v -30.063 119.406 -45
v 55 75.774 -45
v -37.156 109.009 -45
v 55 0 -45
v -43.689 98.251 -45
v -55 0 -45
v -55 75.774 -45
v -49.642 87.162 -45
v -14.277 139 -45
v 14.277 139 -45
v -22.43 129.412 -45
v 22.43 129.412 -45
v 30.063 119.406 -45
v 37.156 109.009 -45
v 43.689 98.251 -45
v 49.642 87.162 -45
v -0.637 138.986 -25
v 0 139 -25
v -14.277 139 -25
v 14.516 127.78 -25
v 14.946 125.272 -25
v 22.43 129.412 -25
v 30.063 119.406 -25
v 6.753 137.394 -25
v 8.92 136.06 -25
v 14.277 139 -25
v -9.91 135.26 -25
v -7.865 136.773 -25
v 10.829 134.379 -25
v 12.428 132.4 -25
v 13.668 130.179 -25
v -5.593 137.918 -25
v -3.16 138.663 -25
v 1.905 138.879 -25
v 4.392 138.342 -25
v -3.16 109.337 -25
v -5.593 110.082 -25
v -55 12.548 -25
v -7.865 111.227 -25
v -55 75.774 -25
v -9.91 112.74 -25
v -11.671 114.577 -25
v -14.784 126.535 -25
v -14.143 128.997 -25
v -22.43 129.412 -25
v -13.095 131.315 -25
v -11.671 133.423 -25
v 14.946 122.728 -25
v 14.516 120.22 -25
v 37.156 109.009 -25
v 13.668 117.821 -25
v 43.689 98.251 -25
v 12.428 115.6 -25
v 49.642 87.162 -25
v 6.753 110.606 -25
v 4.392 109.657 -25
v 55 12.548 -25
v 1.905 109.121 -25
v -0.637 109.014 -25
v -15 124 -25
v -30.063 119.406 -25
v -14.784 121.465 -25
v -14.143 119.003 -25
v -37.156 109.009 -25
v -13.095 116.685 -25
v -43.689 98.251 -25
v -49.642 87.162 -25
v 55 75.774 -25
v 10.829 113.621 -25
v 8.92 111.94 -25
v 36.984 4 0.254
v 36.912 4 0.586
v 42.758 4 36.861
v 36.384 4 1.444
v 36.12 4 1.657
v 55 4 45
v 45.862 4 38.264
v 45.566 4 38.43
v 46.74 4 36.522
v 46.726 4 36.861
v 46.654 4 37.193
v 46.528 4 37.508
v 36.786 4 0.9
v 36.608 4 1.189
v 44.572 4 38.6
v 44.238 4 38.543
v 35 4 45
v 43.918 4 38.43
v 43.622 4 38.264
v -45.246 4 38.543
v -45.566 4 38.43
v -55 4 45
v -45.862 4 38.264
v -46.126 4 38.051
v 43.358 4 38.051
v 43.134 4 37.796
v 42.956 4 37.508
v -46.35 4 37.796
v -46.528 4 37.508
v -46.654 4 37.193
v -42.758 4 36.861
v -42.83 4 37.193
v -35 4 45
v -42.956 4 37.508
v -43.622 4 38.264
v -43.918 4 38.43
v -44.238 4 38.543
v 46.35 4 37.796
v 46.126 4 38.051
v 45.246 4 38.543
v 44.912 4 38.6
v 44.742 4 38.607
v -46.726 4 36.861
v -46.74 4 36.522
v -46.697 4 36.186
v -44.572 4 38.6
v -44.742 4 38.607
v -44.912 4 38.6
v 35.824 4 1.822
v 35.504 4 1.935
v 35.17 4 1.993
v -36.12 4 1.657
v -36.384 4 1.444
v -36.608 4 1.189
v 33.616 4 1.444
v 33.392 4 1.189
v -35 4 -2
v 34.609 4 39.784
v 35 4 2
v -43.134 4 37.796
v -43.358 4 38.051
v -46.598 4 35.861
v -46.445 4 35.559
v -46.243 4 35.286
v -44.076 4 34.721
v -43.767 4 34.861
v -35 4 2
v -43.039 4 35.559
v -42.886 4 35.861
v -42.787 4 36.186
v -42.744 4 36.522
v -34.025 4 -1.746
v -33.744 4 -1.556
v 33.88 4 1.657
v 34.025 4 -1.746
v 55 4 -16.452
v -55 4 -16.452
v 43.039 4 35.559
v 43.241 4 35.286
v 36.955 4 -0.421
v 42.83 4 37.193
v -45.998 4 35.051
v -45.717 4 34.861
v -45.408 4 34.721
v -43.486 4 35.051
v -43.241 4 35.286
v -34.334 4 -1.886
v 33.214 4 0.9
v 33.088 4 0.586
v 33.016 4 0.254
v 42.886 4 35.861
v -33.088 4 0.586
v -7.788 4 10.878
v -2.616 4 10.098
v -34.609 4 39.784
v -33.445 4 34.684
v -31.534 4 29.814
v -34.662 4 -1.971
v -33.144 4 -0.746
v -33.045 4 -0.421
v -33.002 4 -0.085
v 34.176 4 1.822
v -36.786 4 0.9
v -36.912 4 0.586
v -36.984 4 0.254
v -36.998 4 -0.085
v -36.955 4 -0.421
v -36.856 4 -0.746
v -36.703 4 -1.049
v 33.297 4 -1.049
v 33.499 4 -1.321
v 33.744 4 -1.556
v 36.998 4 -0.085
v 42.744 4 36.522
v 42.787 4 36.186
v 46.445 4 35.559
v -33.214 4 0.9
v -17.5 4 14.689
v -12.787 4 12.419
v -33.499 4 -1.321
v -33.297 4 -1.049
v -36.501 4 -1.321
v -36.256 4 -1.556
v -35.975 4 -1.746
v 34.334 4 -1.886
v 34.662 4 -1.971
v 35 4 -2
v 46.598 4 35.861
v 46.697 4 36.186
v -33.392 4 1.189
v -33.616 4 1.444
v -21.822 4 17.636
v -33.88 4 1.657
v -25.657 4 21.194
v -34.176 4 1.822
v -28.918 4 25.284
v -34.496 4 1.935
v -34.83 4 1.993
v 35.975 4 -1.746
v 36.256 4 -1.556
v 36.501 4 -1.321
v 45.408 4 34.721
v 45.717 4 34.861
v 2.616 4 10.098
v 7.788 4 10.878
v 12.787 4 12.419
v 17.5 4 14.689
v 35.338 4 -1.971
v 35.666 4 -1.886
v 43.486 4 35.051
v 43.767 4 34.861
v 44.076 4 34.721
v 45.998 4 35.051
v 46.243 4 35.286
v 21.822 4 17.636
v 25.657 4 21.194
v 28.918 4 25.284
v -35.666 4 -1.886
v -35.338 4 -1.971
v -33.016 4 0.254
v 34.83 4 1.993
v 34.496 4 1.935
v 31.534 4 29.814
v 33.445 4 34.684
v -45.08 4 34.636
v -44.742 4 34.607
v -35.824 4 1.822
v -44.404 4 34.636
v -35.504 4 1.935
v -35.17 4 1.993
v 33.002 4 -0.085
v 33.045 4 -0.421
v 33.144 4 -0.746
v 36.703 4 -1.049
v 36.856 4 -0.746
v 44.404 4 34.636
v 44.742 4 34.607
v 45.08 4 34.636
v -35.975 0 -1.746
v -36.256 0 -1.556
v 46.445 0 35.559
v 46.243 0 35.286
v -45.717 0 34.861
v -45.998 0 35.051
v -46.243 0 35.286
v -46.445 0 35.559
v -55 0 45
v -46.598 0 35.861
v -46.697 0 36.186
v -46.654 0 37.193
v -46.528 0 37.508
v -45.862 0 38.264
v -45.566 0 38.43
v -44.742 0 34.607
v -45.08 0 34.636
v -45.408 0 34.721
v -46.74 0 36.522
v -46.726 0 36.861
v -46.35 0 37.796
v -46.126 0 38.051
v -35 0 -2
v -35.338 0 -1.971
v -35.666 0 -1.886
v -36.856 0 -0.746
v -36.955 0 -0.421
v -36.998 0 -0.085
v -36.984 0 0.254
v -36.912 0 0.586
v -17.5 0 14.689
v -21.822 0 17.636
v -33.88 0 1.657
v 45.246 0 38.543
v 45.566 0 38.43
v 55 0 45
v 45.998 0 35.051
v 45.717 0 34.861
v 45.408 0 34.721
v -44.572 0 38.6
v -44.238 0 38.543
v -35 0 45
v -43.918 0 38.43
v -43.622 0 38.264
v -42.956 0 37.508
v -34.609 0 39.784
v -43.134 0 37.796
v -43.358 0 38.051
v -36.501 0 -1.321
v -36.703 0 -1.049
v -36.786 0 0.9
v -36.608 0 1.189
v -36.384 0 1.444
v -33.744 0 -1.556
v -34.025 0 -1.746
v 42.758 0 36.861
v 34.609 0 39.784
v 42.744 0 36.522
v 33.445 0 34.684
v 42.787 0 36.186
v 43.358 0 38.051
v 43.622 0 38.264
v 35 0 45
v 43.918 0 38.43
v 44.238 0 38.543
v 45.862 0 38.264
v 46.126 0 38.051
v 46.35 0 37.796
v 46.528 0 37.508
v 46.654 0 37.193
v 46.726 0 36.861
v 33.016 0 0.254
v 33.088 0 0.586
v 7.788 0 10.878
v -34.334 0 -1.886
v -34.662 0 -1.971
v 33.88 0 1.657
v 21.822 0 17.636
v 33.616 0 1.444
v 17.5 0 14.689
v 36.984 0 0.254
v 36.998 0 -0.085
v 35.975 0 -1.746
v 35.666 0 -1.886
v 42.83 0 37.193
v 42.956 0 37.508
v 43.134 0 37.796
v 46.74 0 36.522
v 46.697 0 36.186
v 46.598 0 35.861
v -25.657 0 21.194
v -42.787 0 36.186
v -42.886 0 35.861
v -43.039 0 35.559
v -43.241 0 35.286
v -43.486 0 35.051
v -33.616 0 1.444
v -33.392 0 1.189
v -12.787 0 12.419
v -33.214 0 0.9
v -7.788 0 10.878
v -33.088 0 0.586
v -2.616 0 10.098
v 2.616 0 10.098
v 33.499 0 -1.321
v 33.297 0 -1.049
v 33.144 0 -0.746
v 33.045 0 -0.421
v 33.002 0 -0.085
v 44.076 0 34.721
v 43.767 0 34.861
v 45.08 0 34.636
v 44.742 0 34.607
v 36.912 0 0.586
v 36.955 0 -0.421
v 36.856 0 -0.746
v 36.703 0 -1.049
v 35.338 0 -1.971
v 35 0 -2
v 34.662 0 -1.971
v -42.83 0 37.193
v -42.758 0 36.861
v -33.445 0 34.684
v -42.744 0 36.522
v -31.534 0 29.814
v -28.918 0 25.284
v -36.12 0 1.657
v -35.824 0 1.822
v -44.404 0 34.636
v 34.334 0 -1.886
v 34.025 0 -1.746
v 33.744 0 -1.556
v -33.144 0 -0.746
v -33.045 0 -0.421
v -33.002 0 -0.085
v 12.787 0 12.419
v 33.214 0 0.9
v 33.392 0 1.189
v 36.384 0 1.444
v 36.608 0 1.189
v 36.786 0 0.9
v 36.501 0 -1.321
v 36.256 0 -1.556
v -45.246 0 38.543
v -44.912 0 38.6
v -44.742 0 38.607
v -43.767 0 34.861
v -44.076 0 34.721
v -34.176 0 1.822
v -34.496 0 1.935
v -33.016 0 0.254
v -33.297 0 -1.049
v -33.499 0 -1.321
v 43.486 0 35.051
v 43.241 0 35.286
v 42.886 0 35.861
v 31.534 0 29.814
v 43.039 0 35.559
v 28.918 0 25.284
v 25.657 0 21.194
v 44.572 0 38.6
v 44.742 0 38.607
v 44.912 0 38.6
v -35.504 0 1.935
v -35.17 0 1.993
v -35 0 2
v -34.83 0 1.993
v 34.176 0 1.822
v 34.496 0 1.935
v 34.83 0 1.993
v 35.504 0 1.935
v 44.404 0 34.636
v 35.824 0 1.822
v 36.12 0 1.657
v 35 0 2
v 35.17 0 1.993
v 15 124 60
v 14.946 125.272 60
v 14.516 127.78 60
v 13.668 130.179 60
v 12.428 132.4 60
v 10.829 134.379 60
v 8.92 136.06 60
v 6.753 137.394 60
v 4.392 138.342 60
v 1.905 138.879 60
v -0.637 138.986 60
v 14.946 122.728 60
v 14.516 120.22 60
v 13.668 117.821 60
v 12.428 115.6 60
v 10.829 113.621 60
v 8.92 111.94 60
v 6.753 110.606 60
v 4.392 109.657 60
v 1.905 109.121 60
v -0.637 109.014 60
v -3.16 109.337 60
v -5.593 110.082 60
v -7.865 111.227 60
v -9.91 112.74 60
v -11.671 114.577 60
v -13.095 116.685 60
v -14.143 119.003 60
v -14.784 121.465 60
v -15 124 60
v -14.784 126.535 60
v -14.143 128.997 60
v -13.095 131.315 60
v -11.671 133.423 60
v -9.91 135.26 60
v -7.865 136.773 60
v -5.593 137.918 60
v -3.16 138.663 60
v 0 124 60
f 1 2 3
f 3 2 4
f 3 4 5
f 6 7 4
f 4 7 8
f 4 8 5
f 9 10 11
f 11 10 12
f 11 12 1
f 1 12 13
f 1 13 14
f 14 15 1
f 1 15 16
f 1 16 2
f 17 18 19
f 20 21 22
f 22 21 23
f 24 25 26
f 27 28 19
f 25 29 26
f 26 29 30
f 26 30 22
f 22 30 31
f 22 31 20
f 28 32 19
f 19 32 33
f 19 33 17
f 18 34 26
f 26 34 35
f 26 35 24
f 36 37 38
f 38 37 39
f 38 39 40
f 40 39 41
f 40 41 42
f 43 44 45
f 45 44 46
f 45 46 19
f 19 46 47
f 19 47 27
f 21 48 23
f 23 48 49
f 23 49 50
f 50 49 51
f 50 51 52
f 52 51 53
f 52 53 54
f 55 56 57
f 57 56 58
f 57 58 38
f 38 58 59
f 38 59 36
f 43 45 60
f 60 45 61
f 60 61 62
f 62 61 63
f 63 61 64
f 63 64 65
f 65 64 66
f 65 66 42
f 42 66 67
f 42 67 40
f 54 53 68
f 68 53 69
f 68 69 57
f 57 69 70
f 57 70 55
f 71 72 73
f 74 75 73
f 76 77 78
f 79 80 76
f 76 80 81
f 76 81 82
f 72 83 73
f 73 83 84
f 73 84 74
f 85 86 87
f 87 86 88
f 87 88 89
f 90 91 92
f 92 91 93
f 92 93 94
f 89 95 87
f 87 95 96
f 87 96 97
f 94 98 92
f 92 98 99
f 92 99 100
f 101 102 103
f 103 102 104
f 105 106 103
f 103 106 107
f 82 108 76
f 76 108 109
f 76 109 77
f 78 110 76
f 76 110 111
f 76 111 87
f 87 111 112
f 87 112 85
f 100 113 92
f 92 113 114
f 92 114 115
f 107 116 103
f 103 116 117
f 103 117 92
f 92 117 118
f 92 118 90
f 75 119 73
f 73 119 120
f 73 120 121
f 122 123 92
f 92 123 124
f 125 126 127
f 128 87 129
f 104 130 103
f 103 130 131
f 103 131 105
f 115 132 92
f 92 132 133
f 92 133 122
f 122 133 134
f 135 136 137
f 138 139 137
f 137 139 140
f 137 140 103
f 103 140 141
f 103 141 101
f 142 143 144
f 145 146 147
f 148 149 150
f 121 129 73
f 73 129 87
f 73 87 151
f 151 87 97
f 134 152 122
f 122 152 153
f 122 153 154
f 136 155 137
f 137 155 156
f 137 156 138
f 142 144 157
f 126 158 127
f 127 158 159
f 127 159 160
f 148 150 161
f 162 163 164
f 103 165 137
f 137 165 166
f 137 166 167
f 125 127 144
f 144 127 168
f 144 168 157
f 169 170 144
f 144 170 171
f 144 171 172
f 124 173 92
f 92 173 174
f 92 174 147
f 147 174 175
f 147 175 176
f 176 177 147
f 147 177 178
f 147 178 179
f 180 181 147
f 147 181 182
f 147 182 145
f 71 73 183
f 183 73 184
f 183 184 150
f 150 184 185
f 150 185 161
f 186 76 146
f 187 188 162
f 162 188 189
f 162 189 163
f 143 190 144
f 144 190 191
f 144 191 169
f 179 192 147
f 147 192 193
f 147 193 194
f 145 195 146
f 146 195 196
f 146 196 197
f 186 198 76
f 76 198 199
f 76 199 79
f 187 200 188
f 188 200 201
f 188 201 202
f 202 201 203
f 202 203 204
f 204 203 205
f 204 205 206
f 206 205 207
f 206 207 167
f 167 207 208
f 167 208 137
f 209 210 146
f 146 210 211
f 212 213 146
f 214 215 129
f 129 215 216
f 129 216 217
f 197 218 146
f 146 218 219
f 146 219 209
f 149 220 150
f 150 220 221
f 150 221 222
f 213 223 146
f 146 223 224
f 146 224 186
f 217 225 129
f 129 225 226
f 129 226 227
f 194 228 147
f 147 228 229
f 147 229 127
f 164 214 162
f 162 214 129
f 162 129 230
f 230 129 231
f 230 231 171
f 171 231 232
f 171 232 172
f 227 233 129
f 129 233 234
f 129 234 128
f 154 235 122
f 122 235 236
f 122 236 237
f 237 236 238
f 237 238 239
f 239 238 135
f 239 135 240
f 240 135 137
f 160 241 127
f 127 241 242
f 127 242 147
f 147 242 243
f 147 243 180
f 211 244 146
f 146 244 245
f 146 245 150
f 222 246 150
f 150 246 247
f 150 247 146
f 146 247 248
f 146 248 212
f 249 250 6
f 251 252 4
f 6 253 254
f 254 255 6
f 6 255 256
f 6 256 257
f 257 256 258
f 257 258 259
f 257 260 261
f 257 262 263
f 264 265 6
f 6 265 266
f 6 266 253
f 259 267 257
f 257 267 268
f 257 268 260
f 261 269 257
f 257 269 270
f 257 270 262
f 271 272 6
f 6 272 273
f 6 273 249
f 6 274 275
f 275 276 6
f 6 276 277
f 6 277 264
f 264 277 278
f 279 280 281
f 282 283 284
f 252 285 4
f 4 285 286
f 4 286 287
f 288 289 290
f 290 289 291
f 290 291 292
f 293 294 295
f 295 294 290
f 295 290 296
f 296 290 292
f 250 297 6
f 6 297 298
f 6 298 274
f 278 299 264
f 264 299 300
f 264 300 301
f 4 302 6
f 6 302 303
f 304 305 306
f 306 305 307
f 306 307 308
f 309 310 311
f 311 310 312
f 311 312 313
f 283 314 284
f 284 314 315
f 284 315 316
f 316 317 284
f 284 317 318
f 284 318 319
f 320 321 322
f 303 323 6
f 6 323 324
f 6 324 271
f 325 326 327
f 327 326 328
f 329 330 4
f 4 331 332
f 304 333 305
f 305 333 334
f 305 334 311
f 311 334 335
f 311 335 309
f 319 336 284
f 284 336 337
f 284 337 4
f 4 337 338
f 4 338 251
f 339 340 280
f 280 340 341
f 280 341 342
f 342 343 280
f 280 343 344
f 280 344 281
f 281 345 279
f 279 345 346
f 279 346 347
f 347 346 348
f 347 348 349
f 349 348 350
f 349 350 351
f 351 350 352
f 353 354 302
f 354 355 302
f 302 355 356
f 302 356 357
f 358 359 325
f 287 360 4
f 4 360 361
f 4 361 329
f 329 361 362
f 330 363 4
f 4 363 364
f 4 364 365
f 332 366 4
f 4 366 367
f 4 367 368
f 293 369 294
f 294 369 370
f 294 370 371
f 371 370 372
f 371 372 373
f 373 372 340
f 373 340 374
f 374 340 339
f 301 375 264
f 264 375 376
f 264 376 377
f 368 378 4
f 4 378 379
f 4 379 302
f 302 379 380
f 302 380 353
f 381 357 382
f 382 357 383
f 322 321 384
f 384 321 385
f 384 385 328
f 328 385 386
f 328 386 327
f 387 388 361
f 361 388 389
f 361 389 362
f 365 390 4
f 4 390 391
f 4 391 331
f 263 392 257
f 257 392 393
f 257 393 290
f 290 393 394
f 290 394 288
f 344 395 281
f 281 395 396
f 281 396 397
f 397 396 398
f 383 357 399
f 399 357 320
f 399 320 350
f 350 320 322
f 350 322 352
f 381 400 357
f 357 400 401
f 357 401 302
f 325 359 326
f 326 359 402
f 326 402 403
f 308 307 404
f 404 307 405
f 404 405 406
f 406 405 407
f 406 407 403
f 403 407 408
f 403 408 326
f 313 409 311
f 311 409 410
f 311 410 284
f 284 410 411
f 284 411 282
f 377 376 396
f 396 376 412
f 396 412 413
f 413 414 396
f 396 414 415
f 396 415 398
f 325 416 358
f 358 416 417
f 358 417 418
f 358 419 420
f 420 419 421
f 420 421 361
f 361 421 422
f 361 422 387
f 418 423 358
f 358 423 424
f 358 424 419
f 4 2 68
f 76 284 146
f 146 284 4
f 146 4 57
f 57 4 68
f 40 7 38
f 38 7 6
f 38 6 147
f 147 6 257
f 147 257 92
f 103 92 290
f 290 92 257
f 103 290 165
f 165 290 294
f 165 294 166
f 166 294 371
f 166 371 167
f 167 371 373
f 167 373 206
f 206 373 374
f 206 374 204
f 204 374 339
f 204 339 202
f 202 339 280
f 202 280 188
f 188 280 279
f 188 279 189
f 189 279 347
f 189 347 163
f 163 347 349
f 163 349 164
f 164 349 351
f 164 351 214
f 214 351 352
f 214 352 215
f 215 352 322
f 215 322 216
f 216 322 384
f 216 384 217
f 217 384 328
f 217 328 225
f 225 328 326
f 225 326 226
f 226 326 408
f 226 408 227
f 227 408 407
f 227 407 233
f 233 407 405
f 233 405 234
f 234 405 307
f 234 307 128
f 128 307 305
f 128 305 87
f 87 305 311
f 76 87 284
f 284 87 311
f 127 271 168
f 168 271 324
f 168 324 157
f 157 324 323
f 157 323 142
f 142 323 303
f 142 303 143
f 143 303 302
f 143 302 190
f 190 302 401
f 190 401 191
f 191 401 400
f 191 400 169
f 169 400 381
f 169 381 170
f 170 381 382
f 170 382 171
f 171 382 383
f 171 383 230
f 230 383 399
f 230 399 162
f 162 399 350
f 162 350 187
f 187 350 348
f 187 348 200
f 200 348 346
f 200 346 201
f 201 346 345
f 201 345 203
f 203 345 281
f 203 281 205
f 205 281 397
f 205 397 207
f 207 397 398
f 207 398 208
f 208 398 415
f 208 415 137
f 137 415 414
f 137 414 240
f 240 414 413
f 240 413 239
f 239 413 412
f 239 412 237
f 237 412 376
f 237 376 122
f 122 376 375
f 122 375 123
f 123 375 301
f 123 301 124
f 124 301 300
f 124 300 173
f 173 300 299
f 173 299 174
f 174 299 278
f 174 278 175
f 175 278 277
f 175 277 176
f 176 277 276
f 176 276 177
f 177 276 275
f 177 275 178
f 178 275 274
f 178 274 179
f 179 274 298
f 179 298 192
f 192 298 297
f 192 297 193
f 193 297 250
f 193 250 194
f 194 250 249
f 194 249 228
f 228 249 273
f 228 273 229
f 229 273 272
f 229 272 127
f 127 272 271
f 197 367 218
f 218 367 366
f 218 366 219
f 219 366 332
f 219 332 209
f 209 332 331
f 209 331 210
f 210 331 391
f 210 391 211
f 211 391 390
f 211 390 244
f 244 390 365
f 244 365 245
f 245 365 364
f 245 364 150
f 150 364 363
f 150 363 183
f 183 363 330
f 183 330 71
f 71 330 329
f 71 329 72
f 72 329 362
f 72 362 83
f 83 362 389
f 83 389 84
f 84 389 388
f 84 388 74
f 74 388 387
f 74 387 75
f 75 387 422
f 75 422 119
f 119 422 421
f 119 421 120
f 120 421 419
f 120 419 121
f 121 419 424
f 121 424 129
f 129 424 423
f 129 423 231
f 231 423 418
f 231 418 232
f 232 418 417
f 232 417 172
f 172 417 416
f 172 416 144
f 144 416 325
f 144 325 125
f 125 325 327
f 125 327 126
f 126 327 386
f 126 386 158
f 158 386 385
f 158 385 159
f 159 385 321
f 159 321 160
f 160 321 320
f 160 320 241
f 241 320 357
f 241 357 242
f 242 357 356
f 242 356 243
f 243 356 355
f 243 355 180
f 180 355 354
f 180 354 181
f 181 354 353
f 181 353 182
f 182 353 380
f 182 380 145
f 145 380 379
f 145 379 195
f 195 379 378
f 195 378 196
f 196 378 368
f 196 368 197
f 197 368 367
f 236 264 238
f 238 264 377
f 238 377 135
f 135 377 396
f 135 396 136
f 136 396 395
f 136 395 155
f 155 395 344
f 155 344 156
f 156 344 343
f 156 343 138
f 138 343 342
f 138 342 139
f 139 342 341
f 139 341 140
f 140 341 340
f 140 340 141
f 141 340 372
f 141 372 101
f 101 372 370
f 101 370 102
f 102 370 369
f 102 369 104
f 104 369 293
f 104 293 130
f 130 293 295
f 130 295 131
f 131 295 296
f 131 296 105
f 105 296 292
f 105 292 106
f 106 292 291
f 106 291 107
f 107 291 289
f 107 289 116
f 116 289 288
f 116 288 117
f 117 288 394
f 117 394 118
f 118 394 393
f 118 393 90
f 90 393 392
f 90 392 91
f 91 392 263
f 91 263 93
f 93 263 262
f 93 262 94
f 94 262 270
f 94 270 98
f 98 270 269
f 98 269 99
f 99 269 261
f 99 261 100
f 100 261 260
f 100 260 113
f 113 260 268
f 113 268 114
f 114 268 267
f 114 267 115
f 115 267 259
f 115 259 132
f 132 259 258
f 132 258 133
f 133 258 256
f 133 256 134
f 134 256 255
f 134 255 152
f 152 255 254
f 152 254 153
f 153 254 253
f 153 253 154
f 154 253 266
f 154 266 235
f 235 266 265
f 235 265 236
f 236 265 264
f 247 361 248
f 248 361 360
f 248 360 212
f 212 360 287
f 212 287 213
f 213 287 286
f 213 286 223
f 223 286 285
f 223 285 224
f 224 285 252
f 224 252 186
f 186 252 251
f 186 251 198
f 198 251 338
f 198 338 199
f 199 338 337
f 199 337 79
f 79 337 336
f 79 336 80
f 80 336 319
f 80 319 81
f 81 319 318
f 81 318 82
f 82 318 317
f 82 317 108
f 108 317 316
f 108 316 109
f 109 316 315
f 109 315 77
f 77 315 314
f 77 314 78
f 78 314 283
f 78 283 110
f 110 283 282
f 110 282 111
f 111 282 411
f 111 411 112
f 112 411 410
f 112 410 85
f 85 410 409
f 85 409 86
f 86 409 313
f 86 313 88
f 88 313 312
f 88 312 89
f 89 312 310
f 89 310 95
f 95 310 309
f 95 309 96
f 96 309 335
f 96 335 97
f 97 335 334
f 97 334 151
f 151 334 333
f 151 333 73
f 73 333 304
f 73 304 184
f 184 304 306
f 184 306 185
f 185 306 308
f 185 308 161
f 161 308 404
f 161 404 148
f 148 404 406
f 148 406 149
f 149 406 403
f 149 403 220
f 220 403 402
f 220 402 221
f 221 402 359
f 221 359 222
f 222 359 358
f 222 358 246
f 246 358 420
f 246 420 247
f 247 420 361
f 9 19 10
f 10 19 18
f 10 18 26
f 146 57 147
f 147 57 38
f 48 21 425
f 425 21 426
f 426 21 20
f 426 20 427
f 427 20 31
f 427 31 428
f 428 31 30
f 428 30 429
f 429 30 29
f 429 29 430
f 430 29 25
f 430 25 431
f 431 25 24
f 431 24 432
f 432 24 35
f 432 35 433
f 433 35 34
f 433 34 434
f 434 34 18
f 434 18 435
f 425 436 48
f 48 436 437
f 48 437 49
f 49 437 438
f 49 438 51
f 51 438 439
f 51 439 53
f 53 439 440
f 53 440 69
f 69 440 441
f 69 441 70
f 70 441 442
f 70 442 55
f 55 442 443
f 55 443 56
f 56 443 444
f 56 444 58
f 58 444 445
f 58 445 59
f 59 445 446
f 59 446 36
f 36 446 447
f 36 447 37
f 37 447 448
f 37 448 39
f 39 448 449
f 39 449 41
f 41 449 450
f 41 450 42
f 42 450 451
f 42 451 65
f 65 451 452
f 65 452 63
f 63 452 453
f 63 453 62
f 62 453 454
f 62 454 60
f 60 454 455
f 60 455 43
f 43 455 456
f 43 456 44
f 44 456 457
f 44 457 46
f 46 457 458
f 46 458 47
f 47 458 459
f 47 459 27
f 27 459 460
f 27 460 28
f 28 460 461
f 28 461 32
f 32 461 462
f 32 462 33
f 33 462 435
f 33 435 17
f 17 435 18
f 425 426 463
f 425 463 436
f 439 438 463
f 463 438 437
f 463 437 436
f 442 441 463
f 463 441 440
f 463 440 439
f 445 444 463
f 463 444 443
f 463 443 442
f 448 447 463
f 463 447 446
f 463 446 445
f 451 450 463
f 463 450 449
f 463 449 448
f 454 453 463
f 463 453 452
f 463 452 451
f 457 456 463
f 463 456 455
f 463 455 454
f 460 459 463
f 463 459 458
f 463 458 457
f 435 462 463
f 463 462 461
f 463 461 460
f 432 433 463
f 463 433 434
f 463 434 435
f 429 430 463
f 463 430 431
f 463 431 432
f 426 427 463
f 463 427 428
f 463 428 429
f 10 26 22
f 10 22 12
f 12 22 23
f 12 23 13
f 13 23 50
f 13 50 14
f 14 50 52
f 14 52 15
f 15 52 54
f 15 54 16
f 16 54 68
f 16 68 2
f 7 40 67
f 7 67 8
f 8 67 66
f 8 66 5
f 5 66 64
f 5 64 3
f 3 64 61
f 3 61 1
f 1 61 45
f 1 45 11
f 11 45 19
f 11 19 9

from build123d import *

# Parameters (mm, degrees)
SKETCH1_R           = 2
BOSS_EXTRUDE1_DEPTH = 4
SKETCH2_W           = 110
SKETCH2_H           = 20
BOSS_EXTRUDE2_DEPTH = 135
SKETCH3_W           = 110
SKETCH3_H           = 8.547835338
BOSS_EXTRUDE3_DEPTH = 10
CHAMFER1_SIZE       = 10
SKETCH4_R           = 15
BOSS_EXTRUDE4_DEPTH = 85
CUT_EXTRUDE1_DEPTH  = 85


with BuildPart() as part:
    # Sketch1 → Boss-Extrude1 (new body)
    with BuildSketch(Plane(origin=(0, 0, 0), x_dir=(1, 0, 0), z_dir=(0, 1, 0))):
        with BuildLine():
            Line((35, -45), (55, -45))
            Line((55, -45), (55, 45))
            Line((55, 45), (-55, 45))
            Line((-55, 45), (-55, -45))
            Line((-55, -45), (-35, -45))
            ThreePointArc((-35, -45), (0, -10), (35, -45))
        make_face()
        with Locations(Location((-35, 0, 0), (0, 0, 270))):
            Circle(SKETCH1_R, mode=Mode.SUBTRACT)
        with Locations(Location((35, 0, 0), (0, 0, 270))):
            Circle(SKETCH1_R, mode=Mode.SUBTRACT)
        with Locations(Location((-44.742033595, -36.607118396, 0), (0, 0, 270))):
            Circle(SKETCH1_R, mode=Mode.SUBTRACT)
        with Locations(Location((44.742033595, -36.607118396, 0), (0, 0, 270))):
            Circle(SKETCH1_R, mode=Mode.SUBTRACT)
    extrude(amount=BOSS_EXTRUDE1_DEPTH)



with BuildPart() as body_2:
    # Sketch2 → Boss-Extrude2 (new body)
    with BuildSketch(Plane(origin=(0, 4, 0), x_dir=(1, 0, 0), z_dir=(0, 1, 0))):
        with Locations((0, 35)):
            Rectangle(SKETCH2_W, SKETCH2_H)
    extrude(amount=BOSS_EXTRUDE2_DEPTH)


with BuildPart() as part_1:
    add(part.part)

    add(body_2.part)  # Boss-Extrude3 merges body 2
    # Sketch3 → Boss-Extrude3 (add)
    with BuildSketch(Plane(origin=(0, 4, 0), x_dir=(1, 0, 0), z_dir=(0, 1, 0))):
        with Locations((0, 20.726082331)):
            Rectangle(SKETCH3_W, SKETCH3_H)
    extrude(amount=BOSS_EXTRUDE3_DEPTH)

    # Chamfer1
    # the kernel refuses this chamfer: 10 mm, written as the material it takes off along each edge
    with BuildSketch(Plane(origin=(-80.71682988, 14, -16.452164662), x_dir=(0, -0.9996219169112968, 0.027495876610586317), z_dir=(1, 0, 0))) as chamfer1_piece_1_section:
        Polygon((CHAMFER1_SIZE * 0.999621916911, CHAMFER1_SIZE * 0.0274958766106), (-CHAMFER1_SIZE * 0.0274958766106, CHAMFER1_SIZE * 0.999621916911), (0, 0), align=None)
    chamfer1_piece_1 = extrude(amount=161.433659759, mode=Mode.PRIVATE)
    chamfer1_piece_1 = split(chamfer1_piece_1, bisect_by=Plane(origin=(0, 4, -19.564208601), z_dir=(0, 1, 0)), keep=Keep.TOP, mode=Mode.PRIVATE)
    chamfer1_piece_1 = split(chamfer1_piece_1, bisect_by=Plane(origin=(0, 10.613146748, -25), z_dir=(0, 0, 1)), keep=Keep.TOP, mode=Mode.PRIVATE)
    add(chamfer1_piece_1, mode=Mode.SUBTRACT)

    # Sketch4 → Boss-Extrude4 (add)
    with BuildSketch(Plane.XY.offset(-25)):
        with Locations(Location((0, 124, 0), (0, 0, 90))):
            Circle(SKETCH4_R)
    extrude(amount=BOSS_EXTRUDE4_DEPTH)

    # Sketch5 → Cut-Extrude1 (cut)
    with BuildSketch(Plane.XY.offset(-25)):
        with BuildLine():
            Line((-55, 139), (-55, 75.773917669))
            ThreePointArc((-55, 75.773917669), (-37.156416489, 109.008847521), (-14.276626111, 139))
            Line((-14.276626111, 139), (-55, 139))
        make_face()
        with BuildLine():
            Line((55, 139), (55, 75.773917669))
            ThreePointArc((55, 75.773917669), (37.156416489, 109.008847521), (14.276626111, 139))
            Line((14.276626111, 139), (55, 139))
        make_face()
    extrude(amount=-CUT_EXTRUDE1_DEPTH, mode=Mode.SUBTRACT)


solid = part_1.part
